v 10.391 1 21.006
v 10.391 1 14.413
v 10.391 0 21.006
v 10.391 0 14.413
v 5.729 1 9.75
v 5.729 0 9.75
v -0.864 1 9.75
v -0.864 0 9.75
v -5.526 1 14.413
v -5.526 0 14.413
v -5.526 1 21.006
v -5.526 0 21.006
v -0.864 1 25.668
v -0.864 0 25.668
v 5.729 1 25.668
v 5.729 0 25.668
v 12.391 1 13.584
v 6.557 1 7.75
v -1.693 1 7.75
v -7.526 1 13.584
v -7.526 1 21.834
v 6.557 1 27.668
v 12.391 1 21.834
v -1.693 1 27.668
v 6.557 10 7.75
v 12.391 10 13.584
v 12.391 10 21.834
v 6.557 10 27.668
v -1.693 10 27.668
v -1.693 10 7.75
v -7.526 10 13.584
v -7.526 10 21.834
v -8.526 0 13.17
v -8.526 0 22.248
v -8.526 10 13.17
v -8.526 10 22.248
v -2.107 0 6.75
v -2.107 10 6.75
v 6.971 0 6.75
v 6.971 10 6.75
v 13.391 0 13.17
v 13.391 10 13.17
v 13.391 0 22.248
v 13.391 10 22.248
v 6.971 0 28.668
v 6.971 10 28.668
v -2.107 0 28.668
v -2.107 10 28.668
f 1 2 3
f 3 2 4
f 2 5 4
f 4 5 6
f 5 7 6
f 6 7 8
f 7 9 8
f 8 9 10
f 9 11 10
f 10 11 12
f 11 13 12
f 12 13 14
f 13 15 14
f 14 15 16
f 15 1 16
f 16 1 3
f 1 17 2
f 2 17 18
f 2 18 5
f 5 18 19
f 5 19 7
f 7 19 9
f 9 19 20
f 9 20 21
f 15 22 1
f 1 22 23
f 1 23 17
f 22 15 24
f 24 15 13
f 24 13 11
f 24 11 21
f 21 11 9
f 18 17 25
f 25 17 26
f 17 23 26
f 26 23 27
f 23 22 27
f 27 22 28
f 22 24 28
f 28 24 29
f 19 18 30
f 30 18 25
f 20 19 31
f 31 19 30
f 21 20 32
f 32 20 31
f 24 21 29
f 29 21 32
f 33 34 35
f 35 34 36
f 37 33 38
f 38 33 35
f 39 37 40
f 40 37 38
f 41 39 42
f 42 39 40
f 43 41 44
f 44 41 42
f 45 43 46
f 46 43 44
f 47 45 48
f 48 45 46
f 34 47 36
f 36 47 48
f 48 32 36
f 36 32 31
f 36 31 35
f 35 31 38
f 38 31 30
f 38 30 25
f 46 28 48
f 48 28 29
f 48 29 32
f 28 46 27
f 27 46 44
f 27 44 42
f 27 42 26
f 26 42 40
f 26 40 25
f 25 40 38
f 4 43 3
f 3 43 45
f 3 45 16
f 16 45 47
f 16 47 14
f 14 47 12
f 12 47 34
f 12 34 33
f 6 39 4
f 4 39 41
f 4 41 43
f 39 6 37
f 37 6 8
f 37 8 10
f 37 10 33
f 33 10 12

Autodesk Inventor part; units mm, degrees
ref_plane "YZ Plane" through (0, 0, 0) normal (1, 0, 0) x (0, 1, 0)
ref_plane "XZ Plane" through (0, 0, 0) normal (0, 1, 0) x (-1, 0, 0)
ref_plane "XY Plane" through (0, 0, 0) normal (0, 0, 1) x (1, 0, 0)
sketch "Sketch1" plane through (0, 0, 0) normal (0, 1, 0) x (-1, 0, 0)
  line L0 (7.5264, 21.8341) -> (7.5264, 13.5841)
  line L1 (7.5264, 13.5841) -> (1.6928, 7.7505)
  line L2 (1.6928, 7.7505) -> (-6.5572, 7.7505)
  line L3 (7.5264, 21.8341) -> (1.6928, 27.6678)
  line L4 (1.6928, 27.6678) -> (-6.5572, 27.6678)
  line L5 (-6.5572, 27.6678) -> (-12.3908, 21.8341)
  line L6 (-12.3908, 21.8341) -> (-12.3908, 13.5841)
  line L7 (-12.3908, 13.5841) -> (-6.5572, 7.7505)
  line L8 (8.5264, 22.2483) -> (8.5264, 13.1699)
  line L9 (8.5264, 13.1699) -> (2.107, 6.7505)
  line L10 (2.107, 6.7505) -> (-6.9714, 6.7505)
  line L11 (8.5264, 22.2483) -> (2.107, 28.6678)
  line L12 (2.107, 28.6678) -> (-6.9714, 28.6678)
  line L13 (-6.9714, 28.6678) -> (-13.3908, 22.2483)
  line L14 (-13.3908, 22.2483) -> (-13.3908, 13.1699)
  line L15 (-13.3908, 13.1699) -> (-6.9714, 6.7505)
  point P0 (0, 0)
  point P1 (1, 1)
  dimension "d0" = 8.25
  dimension "d3" = 8.25
  dimension "d5" = 8.25
  dimension "d7" = 8.25
  dimension "d8" = 8.25
  dimension "d9" = 8.25
  dimension "d12" = 8.25
  dimension "d17" = 8.25
  dimension "d29" = 1
  dimension "d31" = 1
  dimension "d32" = 1
  dimension "d33" = 1
  dimension "d101" = 135
  dimension "d102" = 135
  dimension "d115" = 135
  dimension "d116" = 135
  dimension "d135" = 1
  dimension "d138" = 1
  dimension "d139" = 135
  dimension "d140" = 135
  dimension "d141" = 135
  dimension "d142" = 135
  dimension "d143" = 1
  dimension "d144" = 1
  dimension "d145" = 135
  dimension "d146" = 135
  dimension "d147" = 135
  dimension "d148" = 135
  dimension "d149" = 135
  dimension "d150" = 135
  dimension "d151" = 135
  dimension "d152" = 135
extrude "OutsideHeight" add sketch "Sketch1" along normal blind 10
extrude "BaseHeight" add sketch "Sketch1" along normal blind 1 contours L0 L1 L2 L7 L6 L5 L4 L3
sketch "Sketch5" plane through (0, 1, 0) normal (0, 1, 0) x (1, 0, 0)
  line L0 (-1.6928, -27.6678) -> (-7.5264, -21.8341) projected
  line L1 (-7.5264, -13.5841) -> (-1.6928, -7.7505) projected
  line L2 (-7.5264, -21.8341) -> (-7.5264, -13.5841)
  line L3 (-7.5264, -13.5841) -> (-1.6928, -7.7505)
  line L4 (-1.6928, -7.7505) -> (6.5572, -7.7505) projected
  line L5 (-1.6928, -7.7505) -> (6.5572, -7.7505)
  line L6 (6.5572, -7.7505) -> (12.3908, -13.5841)
  line L7 (12.3908, -13.5841) -> (12.7122, -18.5063)
  line L8 (12.3908, -13.5841) -> (12.3908, -21.8341) projected
  line L9 (12.3908, -13.5841) -> (12.3908, -21.8341)
  line L10 (12.3908, -21.8341) -> (6.5572, -27.6678)
  line L11 (6.5572, -27.6678) -> (-1.6928, -27.6678)
  line L12 (-1.6928, -27.6678) -> (-7.5264, -21.8341)
  line L13 (-5.5264, -21.0057) -> (-5.5264, -14.4125)
  line L14 (-5.5264, -14.4125) -> (-0.8644, -9.7505)
  line L15 (-0.8644, -9.7505) -> (5.7288, -9.7505)
  line L16 (5.7288, -9.7505) -> (10.3908, -14.4125)
  line L17 (10.3908, -14.4125) -> (10.3908, -21.0057)
  line L18 (10.3908, -21.0057) -> (5.7288, -25.6678)
  line L19 (5.7288, -25.6678) -> (-0.8644, -25.6678)
  line L20 (-0.8644, -25.6678) -> (-5.5264, -21.0057)
  point P0 (0, 0)
  point P1 (-1.6932, -27.6674)
  dimension "d94" = 135
  dimension "d95" = 135
  dimension "d125" = 135
  dimension "d126" = 135
  dimension "d127" = 135
  dimension "d128" = 135
  dimension "d129" = 135
  dimension "d130" = 135
  dimension "d131" = 2
extrude "BaseCut" cut sketch "Sketch5" against normal blind 1 contours L13 L14 L15 L16 L17 L18 L19 L20
equation "\"d3\" = d0"
equation "\"d5\" = d0"
equation "\"d7\" = d0"
equation "\"d8\" = d0"
equation "\"d9\" = d0"
equation "\"d12\" = d0"
equation "\"d17\" = d0"
equation "\"d115\" = d110"
equation "\"d57\" = d72"
equation "\"d66\" = d57"
equation "\"d110\" = 135deg"
equation "\"d72\" = 2"
properties part number "_3DPrint"
